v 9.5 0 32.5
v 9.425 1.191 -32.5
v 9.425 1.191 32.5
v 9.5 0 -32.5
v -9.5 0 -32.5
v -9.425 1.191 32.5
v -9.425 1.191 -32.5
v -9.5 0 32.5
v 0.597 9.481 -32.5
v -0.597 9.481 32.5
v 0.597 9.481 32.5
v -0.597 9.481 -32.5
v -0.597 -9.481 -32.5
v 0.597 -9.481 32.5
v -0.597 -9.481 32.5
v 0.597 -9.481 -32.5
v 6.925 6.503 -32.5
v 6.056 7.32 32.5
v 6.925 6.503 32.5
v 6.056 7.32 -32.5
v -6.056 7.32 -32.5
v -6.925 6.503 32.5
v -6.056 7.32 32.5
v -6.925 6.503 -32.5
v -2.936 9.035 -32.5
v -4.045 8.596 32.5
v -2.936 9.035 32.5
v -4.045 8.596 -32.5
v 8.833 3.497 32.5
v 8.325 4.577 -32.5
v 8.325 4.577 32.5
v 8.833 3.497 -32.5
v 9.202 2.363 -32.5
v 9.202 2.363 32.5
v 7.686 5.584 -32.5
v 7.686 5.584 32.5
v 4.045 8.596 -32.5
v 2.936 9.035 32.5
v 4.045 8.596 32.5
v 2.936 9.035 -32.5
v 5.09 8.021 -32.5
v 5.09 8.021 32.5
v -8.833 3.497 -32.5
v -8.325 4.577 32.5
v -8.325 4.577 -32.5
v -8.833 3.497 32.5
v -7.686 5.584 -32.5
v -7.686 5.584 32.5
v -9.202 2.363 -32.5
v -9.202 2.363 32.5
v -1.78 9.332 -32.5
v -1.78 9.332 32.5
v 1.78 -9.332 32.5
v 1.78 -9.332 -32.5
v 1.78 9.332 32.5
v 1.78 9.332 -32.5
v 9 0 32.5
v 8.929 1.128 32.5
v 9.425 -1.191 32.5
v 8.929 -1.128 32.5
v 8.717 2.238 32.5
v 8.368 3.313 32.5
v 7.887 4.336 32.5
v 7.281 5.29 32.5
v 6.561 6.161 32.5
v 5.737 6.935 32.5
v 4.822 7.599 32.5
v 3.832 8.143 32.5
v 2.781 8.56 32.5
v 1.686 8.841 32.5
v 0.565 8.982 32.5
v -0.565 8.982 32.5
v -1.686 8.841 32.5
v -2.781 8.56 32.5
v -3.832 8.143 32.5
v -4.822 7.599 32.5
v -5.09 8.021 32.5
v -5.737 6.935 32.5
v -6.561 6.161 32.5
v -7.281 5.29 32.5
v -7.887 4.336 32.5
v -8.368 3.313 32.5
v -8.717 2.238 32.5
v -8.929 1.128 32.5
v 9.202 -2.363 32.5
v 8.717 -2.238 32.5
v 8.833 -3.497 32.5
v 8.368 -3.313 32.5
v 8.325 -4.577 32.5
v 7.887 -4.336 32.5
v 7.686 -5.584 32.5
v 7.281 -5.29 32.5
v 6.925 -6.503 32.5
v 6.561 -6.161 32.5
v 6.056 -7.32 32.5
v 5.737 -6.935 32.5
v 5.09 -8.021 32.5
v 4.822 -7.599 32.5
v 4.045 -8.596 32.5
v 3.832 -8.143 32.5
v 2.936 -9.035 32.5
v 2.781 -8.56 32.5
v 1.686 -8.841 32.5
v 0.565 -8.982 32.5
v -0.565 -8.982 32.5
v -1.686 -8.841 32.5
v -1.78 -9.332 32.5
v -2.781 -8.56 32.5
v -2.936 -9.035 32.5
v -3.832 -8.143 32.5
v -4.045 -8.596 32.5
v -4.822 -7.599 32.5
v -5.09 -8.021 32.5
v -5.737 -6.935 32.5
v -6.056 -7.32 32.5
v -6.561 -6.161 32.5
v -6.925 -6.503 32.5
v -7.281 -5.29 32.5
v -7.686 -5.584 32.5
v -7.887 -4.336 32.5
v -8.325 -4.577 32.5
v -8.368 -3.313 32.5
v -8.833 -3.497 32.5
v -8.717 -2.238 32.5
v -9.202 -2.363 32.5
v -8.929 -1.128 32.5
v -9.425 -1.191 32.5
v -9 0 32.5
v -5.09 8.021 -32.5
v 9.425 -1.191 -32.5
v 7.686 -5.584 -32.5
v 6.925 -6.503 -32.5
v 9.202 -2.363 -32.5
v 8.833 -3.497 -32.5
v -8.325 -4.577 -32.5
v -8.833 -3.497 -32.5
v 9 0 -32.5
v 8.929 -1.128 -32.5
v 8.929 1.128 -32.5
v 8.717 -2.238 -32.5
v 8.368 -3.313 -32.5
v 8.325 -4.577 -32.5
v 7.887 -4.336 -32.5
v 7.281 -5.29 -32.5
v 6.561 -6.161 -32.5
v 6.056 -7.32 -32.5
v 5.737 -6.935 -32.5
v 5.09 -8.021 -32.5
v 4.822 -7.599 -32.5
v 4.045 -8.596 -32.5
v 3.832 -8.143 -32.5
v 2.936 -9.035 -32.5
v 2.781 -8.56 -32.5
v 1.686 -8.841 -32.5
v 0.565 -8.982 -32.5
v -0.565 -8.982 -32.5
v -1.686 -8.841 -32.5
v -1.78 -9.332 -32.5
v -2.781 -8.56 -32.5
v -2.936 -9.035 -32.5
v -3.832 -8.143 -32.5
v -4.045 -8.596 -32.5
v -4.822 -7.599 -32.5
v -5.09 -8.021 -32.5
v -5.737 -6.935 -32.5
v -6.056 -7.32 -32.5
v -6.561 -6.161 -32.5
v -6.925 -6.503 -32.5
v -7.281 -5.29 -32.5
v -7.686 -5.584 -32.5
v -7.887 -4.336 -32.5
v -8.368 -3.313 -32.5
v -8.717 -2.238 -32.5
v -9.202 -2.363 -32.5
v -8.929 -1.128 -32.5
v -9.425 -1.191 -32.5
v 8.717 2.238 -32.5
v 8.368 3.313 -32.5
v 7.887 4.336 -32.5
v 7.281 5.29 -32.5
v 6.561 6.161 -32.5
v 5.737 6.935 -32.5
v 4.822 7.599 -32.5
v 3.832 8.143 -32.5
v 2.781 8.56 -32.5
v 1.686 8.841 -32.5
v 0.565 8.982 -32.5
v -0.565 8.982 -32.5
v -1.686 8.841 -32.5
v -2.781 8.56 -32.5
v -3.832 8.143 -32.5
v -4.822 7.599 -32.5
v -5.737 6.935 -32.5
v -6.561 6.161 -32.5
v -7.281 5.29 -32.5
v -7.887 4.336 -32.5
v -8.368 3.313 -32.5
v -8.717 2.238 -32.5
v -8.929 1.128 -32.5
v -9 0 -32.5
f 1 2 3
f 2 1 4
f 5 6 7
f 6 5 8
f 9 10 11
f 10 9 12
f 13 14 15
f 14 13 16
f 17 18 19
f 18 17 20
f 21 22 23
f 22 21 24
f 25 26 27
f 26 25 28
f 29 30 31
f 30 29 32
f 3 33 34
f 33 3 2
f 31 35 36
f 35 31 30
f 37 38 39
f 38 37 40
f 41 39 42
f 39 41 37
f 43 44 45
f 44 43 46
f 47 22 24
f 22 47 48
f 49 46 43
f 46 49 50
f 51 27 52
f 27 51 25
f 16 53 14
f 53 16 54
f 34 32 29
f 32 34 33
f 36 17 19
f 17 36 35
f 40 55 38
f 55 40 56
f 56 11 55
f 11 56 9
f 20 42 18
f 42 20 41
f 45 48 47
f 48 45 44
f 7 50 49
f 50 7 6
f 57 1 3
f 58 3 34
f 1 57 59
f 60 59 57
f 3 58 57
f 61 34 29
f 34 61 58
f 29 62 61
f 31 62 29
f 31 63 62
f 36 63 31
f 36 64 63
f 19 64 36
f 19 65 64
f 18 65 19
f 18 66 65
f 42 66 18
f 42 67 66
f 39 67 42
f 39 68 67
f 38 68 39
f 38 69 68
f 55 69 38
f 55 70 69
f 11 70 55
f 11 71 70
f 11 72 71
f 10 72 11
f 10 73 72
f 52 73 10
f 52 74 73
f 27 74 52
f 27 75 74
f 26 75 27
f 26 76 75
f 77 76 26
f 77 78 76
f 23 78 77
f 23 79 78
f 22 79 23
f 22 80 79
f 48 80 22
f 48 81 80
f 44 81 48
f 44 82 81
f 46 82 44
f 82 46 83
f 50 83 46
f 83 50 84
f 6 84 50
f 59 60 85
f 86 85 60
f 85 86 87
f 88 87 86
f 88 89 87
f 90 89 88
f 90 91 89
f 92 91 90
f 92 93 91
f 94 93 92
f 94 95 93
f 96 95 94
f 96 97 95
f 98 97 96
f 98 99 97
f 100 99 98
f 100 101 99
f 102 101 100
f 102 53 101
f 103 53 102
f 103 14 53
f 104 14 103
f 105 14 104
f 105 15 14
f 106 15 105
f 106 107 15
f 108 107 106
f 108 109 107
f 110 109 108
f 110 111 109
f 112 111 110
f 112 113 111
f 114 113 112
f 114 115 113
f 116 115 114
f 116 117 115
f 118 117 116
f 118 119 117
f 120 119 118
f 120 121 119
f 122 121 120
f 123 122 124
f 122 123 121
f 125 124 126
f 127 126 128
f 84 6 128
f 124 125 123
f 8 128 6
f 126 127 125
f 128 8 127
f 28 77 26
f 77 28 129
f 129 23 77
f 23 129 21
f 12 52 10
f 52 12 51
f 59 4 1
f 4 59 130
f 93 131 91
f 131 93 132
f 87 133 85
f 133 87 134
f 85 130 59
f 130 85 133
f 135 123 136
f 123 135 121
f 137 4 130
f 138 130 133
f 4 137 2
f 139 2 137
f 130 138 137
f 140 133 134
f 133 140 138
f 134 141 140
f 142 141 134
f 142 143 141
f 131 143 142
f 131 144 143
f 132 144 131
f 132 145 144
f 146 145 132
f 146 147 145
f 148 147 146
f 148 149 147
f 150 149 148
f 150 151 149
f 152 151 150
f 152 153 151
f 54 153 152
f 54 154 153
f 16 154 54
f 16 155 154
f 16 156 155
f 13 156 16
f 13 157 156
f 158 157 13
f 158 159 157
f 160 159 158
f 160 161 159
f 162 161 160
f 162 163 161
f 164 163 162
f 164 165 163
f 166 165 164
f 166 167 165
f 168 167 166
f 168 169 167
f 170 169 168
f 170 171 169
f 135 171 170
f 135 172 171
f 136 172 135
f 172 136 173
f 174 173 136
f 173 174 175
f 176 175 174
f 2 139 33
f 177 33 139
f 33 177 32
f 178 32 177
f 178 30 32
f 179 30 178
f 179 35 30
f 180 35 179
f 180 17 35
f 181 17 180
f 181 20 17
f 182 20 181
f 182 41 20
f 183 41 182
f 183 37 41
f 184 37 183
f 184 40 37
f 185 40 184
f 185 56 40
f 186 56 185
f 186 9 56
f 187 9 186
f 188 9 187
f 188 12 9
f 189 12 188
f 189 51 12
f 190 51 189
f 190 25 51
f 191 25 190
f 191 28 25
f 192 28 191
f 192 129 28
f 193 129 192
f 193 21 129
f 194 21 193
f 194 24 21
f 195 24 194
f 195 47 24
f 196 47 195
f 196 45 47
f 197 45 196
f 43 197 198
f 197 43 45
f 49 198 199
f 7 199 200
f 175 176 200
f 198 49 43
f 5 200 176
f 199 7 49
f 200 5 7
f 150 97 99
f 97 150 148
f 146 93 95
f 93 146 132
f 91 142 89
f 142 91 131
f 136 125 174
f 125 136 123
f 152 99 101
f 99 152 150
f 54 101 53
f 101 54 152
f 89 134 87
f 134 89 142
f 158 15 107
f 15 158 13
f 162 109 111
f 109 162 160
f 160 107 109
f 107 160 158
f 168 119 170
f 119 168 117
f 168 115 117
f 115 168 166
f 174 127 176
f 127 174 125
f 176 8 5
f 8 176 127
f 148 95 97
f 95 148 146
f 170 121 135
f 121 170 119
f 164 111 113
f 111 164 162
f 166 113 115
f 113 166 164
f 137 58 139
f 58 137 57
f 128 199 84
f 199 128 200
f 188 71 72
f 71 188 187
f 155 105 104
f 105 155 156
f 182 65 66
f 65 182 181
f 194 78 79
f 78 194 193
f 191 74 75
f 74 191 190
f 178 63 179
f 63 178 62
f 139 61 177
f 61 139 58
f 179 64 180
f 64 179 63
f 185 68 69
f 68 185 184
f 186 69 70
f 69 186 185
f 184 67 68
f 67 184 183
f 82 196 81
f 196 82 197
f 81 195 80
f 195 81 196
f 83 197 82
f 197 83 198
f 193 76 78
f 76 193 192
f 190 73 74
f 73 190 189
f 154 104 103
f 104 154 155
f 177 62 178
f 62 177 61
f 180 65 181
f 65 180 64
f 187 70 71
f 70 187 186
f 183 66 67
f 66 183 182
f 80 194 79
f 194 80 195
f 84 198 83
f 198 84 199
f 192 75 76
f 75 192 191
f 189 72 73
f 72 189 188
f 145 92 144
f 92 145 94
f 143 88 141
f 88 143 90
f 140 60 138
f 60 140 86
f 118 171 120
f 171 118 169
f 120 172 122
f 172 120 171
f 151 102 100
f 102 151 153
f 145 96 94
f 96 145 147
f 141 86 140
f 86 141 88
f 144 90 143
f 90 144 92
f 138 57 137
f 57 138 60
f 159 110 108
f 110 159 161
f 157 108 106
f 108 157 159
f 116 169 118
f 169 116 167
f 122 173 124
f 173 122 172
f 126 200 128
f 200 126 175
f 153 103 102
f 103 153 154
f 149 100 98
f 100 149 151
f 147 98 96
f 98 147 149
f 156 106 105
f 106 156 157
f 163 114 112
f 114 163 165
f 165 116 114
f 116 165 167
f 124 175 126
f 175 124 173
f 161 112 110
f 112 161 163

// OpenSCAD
$fn = 50;


difference() {
	union() {
		translate(v = [0, 0, -32.5000000000]) {
			cylinder(h = 65, r = 9.5000000000);
		}
	}
	union() {
		translate(v = [0, 0, -100.0000000000]) {
			cylinder(h = 200, r = 9);
		}
	}
}
